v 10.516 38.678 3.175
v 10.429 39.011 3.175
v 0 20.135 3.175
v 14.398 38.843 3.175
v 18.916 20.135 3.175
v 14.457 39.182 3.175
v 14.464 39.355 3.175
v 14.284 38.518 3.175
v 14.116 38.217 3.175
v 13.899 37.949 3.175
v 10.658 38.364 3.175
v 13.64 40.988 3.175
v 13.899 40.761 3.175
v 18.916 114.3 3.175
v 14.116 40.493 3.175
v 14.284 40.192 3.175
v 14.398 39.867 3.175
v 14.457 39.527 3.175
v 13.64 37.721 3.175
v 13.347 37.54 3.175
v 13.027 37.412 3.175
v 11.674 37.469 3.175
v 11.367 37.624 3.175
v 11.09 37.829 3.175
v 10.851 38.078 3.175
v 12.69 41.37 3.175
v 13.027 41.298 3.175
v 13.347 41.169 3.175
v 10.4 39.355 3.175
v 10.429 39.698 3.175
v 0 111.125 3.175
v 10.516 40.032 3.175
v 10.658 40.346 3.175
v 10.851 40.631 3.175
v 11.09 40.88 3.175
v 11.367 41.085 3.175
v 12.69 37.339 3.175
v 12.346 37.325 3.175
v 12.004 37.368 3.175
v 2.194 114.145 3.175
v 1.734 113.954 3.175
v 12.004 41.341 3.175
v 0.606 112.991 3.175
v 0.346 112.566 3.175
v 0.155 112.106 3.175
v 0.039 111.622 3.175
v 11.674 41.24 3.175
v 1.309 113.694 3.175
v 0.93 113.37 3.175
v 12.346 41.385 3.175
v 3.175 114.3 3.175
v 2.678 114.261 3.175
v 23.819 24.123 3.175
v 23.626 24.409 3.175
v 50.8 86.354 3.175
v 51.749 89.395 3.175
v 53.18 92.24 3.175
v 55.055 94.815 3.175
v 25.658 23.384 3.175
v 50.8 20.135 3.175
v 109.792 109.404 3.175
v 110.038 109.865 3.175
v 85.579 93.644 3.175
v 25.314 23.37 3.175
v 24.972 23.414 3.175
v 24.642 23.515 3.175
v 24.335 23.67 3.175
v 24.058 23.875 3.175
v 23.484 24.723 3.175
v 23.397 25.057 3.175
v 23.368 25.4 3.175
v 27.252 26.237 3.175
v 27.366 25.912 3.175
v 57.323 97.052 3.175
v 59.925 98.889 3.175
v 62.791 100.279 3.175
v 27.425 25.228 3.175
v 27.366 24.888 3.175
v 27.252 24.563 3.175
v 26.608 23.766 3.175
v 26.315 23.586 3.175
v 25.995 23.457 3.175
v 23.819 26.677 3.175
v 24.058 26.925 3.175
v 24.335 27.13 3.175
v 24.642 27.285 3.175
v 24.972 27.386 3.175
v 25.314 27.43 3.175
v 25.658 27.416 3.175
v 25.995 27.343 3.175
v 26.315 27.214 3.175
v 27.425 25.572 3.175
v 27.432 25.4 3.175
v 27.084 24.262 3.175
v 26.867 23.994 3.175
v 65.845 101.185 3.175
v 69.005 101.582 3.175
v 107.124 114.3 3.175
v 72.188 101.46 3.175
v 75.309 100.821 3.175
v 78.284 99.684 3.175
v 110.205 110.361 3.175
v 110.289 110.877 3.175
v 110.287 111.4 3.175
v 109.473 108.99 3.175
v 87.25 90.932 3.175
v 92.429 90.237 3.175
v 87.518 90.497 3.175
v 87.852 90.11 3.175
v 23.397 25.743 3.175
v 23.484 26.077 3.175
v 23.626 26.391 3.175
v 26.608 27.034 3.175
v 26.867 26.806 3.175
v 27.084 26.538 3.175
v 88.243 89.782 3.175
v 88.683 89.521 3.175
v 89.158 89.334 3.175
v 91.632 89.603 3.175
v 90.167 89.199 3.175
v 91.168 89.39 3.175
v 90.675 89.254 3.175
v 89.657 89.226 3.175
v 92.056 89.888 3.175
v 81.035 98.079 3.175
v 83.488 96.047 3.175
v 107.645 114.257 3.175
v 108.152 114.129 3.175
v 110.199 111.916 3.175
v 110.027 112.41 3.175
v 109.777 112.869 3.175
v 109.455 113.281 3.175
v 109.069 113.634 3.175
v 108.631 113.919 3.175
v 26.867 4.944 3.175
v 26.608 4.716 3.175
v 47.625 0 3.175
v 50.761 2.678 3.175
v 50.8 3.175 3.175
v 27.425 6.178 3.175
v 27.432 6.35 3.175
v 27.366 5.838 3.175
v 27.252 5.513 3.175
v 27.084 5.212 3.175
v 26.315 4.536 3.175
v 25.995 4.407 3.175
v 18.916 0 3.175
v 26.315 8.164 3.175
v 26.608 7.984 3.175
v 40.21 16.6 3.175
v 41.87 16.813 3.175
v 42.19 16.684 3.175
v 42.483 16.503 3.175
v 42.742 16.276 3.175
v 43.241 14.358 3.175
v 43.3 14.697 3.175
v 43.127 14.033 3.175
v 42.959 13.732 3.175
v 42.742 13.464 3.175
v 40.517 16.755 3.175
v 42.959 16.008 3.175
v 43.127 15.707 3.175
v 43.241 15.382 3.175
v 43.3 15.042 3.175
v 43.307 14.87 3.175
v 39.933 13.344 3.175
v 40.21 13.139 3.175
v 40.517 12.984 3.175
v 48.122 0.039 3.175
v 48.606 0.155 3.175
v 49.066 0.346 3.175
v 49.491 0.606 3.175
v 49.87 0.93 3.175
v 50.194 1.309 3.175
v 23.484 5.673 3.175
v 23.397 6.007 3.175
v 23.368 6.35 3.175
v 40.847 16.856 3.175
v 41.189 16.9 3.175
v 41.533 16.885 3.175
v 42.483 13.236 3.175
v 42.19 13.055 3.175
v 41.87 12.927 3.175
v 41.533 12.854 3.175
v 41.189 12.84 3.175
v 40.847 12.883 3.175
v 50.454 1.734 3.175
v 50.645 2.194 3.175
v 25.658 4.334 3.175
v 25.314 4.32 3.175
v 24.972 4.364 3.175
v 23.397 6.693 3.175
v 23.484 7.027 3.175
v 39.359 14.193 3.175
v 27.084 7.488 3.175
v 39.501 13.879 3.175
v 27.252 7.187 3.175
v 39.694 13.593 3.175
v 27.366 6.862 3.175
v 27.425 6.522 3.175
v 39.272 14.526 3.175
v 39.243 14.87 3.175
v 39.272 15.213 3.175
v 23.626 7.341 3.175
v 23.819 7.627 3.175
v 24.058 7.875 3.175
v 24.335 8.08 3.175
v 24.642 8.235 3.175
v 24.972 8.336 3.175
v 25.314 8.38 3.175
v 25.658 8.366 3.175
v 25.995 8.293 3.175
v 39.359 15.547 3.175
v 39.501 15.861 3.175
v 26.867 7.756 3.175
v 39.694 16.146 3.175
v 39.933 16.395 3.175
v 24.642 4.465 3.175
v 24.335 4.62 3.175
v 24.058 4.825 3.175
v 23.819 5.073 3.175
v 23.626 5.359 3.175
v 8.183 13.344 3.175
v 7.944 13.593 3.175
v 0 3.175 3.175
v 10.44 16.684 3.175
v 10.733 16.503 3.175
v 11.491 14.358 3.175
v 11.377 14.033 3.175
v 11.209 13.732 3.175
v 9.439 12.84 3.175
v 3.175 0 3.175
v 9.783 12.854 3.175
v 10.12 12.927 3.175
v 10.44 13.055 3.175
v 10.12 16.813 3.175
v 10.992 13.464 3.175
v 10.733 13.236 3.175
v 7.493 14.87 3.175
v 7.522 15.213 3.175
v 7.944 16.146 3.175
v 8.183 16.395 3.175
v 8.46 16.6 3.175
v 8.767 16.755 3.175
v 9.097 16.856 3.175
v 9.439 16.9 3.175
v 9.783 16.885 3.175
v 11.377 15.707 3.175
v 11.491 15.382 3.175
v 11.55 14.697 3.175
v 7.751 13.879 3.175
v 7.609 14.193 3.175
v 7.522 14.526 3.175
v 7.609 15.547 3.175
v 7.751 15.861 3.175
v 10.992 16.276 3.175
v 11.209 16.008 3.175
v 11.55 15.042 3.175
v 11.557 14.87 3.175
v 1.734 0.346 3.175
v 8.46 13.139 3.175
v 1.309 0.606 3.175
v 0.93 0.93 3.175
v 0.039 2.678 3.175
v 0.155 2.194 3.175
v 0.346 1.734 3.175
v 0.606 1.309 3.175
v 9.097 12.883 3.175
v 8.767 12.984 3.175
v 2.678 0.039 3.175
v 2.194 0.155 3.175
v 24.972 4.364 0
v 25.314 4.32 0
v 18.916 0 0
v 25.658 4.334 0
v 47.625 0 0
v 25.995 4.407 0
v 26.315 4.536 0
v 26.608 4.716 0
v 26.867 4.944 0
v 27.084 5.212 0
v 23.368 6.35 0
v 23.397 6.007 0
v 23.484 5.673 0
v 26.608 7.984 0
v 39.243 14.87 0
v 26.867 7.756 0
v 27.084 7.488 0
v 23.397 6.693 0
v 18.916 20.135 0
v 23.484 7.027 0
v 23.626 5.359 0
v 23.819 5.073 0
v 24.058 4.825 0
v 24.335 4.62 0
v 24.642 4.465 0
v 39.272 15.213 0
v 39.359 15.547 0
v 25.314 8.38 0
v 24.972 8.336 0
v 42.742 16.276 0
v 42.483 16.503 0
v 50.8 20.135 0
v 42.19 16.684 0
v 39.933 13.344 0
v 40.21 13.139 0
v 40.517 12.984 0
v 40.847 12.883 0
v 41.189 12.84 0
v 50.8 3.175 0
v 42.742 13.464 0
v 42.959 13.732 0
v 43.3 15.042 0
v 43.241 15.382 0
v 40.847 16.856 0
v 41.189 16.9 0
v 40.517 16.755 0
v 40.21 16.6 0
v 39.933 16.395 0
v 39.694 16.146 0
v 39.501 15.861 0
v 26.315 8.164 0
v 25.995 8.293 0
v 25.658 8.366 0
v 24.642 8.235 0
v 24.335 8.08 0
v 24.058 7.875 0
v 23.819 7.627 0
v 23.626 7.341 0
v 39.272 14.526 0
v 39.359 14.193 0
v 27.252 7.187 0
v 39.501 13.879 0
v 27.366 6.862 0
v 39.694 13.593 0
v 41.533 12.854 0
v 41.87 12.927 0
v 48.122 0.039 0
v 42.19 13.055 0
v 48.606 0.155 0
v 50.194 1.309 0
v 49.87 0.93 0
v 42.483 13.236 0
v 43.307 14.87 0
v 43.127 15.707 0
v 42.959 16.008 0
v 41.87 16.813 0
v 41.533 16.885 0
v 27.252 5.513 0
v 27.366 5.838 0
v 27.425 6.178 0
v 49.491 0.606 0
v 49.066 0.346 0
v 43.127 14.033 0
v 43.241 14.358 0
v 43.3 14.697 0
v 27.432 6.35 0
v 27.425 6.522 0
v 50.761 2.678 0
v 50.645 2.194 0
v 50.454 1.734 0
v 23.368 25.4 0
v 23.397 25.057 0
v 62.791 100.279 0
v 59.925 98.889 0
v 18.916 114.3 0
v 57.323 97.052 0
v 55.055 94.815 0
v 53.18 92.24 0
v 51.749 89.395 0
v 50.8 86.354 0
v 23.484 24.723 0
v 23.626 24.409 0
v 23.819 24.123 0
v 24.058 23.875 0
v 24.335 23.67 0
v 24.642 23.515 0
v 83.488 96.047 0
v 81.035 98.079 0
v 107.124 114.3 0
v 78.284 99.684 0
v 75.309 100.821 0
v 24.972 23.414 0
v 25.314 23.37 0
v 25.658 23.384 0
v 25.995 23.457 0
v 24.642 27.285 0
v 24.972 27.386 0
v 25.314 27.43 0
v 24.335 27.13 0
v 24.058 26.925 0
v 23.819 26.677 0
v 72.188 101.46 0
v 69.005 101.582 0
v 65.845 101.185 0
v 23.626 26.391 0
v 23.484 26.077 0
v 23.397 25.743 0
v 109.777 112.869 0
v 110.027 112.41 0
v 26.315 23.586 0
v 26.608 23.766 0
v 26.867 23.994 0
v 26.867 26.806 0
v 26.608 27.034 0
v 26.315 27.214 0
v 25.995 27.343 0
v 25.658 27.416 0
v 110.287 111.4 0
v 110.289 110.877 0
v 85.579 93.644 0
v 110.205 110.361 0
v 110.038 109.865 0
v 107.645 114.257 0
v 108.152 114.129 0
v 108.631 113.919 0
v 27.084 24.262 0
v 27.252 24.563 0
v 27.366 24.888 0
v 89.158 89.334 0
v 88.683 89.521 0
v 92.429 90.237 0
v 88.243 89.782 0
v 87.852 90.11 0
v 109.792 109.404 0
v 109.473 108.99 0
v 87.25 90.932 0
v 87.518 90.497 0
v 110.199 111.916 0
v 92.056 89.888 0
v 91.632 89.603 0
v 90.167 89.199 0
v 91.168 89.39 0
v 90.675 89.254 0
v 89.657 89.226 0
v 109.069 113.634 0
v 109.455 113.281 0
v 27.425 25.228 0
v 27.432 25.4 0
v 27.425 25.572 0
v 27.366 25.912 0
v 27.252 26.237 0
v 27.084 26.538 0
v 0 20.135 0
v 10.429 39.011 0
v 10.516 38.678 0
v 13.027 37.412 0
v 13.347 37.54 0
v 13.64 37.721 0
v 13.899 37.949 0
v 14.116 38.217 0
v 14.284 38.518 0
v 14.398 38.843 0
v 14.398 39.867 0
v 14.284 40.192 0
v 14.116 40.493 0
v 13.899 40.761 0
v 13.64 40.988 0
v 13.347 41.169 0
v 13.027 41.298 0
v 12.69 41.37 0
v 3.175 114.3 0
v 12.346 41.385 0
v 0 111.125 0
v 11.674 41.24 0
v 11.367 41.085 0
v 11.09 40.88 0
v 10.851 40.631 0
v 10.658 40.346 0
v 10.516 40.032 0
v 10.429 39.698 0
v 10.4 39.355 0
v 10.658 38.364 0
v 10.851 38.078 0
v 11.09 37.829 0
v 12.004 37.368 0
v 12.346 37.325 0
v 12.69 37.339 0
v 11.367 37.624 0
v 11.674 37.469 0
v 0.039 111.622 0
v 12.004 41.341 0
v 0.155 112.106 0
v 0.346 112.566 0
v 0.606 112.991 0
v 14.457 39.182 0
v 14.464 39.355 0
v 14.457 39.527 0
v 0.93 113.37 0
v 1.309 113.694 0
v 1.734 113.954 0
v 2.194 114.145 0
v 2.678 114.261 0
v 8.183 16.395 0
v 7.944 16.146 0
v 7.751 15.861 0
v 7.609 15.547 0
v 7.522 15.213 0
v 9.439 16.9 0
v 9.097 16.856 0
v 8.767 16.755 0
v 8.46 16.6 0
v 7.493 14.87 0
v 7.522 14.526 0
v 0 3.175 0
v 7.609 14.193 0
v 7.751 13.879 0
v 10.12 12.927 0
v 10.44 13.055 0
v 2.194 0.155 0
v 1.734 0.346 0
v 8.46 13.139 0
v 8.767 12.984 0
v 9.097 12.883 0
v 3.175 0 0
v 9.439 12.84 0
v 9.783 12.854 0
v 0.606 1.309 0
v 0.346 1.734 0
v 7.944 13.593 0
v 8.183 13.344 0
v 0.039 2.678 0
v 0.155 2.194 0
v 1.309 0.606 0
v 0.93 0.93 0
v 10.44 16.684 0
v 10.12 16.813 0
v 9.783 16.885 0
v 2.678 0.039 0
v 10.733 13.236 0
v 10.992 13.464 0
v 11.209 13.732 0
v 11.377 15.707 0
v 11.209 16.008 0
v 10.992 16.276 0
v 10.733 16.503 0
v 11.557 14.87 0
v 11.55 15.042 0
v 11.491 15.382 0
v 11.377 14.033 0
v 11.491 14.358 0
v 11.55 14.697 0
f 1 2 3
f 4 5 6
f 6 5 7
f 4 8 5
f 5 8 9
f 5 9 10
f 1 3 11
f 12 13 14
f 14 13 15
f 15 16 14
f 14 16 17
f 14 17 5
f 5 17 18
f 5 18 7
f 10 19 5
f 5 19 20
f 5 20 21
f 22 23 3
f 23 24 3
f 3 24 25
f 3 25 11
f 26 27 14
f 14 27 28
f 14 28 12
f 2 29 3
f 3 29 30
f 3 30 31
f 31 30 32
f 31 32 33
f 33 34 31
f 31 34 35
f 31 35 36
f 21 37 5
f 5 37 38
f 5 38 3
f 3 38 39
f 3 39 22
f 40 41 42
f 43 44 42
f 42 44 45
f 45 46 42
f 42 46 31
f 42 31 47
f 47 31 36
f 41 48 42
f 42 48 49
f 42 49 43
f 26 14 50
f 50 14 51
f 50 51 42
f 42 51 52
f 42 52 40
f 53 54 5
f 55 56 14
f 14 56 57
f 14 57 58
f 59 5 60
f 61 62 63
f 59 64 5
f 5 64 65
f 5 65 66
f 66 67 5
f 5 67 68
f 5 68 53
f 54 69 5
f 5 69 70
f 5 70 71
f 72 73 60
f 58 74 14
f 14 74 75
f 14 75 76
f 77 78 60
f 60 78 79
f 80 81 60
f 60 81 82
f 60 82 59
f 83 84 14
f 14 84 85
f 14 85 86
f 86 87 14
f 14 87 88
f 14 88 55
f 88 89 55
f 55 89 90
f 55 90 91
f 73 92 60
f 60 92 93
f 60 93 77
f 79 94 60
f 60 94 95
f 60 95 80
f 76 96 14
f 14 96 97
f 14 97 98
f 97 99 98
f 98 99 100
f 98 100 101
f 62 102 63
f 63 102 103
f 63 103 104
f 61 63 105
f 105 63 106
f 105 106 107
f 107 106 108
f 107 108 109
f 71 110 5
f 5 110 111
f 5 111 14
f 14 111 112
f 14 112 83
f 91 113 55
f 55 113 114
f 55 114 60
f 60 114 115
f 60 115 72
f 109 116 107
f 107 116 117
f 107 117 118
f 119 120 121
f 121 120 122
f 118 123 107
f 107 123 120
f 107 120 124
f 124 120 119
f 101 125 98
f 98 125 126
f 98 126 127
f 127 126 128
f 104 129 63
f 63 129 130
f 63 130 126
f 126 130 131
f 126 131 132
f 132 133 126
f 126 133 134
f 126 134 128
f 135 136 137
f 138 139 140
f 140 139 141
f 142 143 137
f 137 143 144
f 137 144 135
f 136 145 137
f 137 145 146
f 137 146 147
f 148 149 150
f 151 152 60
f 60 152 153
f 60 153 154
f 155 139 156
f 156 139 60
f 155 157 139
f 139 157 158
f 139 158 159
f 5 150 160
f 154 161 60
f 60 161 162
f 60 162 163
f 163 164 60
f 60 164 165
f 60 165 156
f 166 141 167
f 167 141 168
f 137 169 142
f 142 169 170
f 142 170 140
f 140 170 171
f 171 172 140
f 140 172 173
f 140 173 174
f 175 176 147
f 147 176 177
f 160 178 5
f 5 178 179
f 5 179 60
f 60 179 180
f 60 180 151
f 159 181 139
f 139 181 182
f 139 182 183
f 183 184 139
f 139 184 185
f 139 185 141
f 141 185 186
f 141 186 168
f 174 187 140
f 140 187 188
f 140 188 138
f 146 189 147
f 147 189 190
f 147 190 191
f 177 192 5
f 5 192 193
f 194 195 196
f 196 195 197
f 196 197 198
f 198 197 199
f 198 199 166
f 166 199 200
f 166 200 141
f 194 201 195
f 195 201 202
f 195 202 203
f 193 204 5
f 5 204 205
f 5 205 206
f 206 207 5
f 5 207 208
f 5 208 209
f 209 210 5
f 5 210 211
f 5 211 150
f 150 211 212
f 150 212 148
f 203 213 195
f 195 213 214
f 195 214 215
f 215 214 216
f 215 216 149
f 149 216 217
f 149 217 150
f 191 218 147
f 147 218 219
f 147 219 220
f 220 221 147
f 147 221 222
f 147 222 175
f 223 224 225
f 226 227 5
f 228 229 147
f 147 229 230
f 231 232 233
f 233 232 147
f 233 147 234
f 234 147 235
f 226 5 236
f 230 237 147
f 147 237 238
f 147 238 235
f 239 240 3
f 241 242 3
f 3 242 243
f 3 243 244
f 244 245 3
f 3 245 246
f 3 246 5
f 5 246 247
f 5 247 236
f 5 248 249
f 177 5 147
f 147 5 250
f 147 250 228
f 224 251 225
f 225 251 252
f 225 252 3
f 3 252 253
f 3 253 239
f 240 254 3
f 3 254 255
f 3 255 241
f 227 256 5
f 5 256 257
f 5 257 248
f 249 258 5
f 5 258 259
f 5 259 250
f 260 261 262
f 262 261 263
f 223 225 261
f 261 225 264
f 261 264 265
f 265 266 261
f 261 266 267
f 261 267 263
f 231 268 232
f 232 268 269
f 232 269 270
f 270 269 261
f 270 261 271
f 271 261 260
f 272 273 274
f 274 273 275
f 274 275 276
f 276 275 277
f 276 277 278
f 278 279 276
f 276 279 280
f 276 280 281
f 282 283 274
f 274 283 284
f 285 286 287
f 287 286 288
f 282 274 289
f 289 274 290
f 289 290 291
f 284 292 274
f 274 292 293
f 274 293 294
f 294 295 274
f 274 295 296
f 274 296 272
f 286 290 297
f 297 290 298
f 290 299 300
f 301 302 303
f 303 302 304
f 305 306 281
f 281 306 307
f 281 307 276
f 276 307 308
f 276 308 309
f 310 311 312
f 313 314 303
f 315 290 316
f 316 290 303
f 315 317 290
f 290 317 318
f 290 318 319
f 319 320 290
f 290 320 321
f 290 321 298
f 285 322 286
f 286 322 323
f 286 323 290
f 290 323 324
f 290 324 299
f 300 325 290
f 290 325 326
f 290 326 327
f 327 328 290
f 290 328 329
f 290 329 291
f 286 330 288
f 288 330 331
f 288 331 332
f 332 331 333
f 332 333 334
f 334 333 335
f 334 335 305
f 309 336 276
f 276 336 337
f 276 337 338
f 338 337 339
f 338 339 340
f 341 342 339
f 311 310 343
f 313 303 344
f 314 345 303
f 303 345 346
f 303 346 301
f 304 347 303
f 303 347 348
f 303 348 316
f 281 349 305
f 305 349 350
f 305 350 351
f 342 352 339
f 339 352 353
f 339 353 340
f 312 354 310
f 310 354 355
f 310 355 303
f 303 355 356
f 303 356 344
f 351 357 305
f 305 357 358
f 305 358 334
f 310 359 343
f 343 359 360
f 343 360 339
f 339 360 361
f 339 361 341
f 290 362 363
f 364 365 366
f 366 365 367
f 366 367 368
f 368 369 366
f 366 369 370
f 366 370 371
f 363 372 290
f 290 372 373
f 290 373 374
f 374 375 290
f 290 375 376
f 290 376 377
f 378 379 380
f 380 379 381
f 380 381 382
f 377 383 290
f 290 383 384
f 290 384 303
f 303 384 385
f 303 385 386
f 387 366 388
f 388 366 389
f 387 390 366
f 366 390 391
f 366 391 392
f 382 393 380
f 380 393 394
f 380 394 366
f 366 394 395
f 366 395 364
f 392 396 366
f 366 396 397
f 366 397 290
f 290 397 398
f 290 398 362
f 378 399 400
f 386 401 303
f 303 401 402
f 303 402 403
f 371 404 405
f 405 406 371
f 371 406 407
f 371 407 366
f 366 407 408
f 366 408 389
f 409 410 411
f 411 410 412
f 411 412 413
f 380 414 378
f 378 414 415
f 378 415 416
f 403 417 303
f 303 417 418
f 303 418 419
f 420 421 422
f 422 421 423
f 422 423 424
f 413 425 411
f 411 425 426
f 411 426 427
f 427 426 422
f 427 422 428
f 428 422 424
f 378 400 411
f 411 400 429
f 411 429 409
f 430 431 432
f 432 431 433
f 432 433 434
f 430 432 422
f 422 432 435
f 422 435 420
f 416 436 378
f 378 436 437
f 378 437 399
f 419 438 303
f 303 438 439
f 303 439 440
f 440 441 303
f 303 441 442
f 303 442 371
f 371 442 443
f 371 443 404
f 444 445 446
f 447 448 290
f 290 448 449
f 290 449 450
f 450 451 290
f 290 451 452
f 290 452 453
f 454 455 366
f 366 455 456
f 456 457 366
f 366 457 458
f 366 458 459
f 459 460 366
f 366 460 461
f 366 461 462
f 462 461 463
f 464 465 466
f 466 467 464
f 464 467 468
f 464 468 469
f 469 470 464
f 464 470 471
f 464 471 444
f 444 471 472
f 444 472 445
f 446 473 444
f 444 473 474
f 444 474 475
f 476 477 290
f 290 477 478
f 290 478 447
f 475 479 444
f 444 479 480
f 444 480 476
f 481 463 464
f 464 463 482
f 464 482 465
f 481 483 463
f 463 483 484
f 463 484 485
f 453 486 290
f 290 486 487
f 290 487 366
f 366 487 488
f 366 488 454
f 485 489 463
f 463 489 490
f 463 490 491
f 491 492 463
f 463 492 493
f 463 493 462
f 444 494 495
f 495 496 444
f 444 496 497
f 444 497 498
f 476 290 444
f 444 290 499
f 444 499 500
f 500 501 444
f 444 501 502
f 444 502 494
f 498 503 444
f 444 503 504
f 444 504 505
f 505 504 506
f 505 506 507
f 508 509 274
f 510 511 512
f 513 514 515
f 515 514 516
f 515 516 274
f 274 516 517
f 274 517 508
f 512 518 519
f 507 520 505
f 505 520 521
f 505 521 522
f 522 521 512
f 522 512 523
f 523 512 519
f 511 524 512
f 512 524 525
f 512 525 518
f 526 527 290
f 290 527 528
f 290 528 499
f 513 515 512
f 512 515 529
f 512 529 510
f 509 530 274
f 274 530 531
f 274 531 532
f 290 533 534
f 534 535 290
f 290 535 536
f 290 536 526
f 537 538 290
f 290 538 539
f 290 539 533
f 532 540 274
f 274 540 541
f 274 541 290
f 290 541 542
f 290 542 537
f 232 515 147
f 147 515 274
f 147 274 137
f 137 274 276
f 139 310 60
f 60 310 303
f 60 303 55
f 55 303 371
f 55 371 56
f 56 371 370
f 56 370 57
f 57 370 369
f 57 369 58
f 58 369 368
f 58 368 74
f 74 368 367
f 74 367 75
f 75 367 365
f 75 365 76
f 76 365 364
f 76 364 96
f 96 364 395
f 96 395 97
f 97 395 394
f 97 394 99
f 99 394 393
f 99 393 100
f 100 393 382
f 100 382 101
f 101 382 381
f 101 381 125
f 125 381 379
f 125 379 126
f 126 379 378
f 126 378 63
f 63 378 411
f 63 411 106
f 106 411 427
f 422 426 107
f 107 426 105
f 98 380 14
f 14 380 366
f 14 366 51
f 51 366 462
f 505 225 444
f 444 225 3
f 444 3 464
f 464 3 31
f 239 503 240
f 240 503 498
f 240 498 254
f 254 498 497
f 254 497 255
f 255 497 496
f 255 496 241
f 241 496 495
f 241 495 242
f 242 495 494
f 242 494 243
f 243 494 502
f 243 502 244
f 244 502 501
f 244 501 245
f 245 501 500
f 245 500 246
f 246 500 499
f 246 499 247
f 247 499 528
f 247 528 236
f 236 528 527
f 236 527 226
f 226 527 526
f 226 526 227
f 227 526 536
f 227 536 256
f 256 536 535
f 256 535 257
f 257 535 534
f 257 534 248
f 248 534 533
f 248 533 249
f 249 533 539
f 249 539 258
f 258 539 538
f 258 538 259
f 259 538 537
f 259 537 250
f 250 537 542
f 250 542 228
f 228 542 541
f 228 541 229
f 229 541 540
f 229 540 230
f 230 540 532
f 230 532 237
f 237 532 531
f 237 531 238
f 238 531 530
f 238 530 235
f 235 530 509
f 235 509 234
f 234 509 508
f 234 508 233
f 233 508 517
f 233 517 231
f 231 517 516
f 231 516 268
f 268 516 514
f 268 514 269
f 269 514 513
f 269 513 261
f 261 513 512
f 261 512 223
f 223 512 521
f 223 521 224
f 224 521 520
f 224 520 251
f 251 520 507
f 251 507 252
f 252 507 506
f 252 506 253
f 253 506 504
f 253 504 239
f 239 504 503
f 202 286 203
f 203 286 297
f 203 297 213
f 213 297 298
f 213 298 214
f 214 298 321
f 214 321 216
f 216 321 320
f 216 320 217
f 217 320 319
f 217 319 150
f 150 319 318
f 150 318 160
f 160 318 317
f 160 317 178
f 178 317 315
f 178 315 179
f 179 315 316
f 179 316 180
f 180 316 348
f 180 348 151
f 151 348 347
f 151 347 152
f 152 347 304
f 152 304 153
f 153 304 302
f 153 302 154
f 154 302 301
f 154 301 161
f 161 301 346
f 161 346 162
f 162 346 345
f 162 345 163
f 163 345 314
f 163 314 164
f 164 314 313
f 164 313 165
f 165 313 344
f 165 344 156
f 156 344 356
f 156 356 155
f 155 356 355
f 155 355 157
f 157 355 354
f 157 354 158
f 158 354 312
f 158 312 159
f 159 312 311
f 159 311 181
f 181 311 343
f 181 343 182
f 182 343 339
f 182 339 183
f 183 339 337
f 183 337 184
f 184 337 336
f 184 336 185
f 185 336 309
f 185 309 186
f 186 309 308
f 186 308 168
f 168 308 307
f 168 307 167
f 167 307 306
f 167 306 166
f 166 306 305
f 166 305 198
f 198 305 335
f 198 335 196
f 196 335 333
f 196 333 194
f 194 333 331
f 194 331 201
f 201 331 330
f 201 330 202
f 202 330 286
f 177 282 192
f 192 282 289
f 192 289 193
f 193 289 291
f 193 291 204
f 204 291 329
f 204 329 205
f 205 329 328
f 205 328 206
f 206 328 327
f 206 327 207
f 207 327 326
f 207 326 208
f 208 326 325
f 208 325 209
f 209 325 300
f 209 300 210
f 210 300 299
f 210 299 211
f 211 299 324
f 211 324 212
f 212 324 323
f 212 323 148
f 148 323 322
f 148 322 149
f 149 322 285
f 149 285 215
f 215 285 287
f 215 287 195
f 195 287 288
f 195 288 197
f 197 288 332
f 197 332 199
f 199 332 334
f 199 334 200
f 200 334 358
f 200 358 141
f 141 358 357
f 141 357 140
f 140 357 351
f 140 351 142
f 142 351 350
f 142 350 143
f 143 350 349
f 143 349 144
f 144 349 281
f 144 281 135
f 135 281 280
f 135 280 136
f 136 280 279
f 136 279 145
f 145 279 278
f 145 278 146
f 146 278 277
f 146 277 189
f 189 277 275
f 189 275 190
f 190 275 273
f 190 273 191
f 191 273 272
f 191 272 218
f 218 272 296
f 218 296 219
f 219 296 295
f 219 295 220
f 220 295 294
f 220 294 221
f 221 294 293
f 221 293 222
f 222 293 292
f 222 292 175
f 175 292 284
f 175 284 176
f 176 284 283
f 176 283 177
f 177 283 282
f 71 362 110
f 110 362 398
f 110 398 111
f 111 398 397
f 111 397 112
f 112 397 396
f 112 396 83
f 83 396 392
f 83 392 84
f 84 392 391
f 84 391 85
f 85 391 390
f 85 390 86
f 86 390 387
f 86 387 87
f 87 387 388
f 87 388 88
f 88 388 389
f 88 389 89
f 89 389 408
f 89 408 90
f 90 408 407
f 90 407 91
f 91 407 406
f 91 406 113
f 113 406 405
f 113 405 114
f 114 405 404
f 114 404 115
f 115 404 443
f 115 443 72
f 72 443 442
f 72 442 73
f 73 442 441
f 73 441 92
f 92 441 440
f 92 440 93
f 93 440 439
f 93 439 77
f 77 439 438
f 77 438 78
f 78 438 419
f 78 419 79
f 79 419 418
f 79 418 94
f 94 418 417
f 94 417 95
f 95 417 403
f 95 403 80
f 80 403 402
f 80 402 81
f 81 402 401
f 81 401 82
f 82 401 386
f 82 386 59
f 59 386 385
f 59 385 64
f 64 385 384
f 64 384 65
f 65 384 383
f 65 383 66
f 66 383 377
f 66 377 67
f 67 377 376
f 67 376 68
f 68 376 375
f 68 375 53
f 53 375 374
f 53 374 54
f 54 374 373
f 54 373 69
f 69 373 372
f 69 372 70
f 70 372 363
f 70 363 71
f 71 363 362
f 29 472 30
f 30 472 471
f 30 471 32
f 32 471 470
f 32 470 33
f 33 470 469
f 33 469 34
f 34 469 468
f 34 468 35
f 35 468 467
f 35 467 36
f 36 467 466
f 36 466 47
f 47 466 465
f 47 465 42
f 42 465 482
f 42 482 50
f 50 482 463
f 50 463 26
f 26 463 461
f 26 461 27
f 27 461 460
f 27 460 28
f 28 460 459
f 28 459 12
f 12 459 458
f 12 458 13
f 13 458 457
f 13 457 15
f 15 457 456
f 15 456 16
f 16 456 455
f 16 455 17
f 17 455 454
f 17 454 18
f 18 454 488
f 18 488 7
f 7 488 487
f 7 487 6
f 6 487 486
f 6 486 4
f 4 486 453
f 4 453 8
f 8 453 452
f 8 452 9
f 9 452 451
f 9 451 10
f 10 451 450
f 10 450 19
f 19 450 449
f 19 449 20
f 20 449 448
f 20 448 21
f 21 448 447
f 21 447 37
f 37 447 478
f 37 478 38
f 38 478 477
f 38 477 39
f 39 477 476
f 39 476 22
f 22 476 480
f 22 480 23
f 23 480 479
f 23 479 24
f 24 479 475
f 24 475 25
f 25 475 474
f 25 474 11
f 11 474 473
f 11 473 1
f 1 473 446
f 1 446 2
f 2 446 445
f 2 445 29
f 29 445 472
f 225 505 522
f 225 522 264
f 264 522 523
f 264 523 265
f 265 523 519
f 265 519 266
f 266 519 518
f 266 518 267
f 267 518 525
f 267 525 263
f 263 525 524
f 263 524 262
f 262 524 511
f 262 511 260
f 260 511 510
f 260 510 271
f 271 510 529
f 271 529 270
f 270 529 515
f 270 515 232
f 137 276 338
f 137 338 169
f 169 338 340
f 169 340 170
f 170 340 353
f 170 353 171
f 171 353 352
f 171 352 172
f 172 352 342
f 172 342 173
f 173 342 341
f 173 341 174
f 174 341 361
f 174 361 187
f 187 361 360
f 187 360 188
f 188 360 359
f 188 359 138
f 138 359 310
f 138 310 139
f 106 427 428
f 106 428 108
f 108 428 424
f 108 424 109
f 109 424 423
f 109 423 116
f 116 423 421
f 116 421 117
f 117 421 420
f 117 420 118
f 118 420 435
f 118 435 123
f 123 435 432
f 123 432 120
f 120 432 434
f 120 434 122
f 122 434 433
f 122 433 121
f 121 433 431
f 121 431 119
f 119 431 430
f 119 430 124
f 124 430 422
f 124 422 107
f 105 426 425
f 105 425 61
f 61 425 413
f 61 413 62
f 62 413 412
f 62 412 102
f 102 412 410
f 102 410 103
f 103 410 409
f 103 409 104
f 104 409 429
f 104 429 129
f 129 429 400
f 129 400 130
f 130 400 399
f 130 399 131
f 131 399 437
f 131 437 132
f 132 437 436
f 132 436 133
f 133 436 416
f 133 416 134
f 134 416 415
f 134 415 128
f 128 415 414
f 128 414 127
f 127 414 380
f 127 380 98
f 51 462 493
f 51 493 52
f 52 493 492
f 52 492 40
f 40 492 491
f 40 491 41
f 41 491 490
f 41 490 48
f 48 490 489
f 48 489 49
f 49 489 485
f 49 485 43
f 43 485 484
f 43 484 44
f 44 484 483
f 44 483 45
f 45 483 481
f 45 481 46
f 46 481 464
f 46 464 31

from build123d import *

# Parameters (mm, degrees)
SKETCH1_R           = 2.032
BOSS_EXTRUDE1_DEPTH = 3.175
FILLET1_R           = 3.175


with BuildPart() as part:
    # Sketch1 → Boss-Extrude1 (new body)
    with BuildSketch(Plane.XY):
        with BuildLine():
            Line((0, 114.3), (114.3, 114.3))
            Line((114.3, 114.3), (88.9, 86.353963576))
            ThreePointArc((88.9, 86.353963576), (69.85, 101.6), (50.8, 86.353963576))
            Line((50.8, 86.353963576), (50.8, 0))
            Line((50.8, 0), (0, 0))
            Line((0, 0), (0, 63.5))
            Line((0, 63.5), (0, 114.3))
        make_face()
        with Locations((9.525, 14.869716291)):
            Circle(SKETCH1_R, mode=Mode.SUBTRACT)
        with Locations((41.275, 14.869716291)):
            Circle(SKETCH1_R, mode=Mode.SUBTRACT)
        with Locations((25.4, 6.35)):
            Circle(SKETCH1_R, mode=Mode.SUBTRACT)
        with Locations((25.4, 25.4)):
            Circle(SKETCH1_R, mode=Mode.SUBTRACT)
        with Locations((12.432008635, 39.354701715)):
            Circle(SKETCH1_R, mode=Mode.SUBTRACT)
    extrude(amount=BOSS_EXTRUDE1_DEPTH)

    # Fillet1
    fillet1_edges = [part.edges().sort_by_distance(p)[0] for p in [
        (0, 114.3, 1.5875),
        (114.3, 114.3, 1.5875),
        (88.9, 86.353963576, 1.5875),
        (50.8, 0, 1.5875),
        (0, 0, 1.5875),
    ]]
    fillet(fillet1_edges, radius=FILLET1_R)


solid = part.part
